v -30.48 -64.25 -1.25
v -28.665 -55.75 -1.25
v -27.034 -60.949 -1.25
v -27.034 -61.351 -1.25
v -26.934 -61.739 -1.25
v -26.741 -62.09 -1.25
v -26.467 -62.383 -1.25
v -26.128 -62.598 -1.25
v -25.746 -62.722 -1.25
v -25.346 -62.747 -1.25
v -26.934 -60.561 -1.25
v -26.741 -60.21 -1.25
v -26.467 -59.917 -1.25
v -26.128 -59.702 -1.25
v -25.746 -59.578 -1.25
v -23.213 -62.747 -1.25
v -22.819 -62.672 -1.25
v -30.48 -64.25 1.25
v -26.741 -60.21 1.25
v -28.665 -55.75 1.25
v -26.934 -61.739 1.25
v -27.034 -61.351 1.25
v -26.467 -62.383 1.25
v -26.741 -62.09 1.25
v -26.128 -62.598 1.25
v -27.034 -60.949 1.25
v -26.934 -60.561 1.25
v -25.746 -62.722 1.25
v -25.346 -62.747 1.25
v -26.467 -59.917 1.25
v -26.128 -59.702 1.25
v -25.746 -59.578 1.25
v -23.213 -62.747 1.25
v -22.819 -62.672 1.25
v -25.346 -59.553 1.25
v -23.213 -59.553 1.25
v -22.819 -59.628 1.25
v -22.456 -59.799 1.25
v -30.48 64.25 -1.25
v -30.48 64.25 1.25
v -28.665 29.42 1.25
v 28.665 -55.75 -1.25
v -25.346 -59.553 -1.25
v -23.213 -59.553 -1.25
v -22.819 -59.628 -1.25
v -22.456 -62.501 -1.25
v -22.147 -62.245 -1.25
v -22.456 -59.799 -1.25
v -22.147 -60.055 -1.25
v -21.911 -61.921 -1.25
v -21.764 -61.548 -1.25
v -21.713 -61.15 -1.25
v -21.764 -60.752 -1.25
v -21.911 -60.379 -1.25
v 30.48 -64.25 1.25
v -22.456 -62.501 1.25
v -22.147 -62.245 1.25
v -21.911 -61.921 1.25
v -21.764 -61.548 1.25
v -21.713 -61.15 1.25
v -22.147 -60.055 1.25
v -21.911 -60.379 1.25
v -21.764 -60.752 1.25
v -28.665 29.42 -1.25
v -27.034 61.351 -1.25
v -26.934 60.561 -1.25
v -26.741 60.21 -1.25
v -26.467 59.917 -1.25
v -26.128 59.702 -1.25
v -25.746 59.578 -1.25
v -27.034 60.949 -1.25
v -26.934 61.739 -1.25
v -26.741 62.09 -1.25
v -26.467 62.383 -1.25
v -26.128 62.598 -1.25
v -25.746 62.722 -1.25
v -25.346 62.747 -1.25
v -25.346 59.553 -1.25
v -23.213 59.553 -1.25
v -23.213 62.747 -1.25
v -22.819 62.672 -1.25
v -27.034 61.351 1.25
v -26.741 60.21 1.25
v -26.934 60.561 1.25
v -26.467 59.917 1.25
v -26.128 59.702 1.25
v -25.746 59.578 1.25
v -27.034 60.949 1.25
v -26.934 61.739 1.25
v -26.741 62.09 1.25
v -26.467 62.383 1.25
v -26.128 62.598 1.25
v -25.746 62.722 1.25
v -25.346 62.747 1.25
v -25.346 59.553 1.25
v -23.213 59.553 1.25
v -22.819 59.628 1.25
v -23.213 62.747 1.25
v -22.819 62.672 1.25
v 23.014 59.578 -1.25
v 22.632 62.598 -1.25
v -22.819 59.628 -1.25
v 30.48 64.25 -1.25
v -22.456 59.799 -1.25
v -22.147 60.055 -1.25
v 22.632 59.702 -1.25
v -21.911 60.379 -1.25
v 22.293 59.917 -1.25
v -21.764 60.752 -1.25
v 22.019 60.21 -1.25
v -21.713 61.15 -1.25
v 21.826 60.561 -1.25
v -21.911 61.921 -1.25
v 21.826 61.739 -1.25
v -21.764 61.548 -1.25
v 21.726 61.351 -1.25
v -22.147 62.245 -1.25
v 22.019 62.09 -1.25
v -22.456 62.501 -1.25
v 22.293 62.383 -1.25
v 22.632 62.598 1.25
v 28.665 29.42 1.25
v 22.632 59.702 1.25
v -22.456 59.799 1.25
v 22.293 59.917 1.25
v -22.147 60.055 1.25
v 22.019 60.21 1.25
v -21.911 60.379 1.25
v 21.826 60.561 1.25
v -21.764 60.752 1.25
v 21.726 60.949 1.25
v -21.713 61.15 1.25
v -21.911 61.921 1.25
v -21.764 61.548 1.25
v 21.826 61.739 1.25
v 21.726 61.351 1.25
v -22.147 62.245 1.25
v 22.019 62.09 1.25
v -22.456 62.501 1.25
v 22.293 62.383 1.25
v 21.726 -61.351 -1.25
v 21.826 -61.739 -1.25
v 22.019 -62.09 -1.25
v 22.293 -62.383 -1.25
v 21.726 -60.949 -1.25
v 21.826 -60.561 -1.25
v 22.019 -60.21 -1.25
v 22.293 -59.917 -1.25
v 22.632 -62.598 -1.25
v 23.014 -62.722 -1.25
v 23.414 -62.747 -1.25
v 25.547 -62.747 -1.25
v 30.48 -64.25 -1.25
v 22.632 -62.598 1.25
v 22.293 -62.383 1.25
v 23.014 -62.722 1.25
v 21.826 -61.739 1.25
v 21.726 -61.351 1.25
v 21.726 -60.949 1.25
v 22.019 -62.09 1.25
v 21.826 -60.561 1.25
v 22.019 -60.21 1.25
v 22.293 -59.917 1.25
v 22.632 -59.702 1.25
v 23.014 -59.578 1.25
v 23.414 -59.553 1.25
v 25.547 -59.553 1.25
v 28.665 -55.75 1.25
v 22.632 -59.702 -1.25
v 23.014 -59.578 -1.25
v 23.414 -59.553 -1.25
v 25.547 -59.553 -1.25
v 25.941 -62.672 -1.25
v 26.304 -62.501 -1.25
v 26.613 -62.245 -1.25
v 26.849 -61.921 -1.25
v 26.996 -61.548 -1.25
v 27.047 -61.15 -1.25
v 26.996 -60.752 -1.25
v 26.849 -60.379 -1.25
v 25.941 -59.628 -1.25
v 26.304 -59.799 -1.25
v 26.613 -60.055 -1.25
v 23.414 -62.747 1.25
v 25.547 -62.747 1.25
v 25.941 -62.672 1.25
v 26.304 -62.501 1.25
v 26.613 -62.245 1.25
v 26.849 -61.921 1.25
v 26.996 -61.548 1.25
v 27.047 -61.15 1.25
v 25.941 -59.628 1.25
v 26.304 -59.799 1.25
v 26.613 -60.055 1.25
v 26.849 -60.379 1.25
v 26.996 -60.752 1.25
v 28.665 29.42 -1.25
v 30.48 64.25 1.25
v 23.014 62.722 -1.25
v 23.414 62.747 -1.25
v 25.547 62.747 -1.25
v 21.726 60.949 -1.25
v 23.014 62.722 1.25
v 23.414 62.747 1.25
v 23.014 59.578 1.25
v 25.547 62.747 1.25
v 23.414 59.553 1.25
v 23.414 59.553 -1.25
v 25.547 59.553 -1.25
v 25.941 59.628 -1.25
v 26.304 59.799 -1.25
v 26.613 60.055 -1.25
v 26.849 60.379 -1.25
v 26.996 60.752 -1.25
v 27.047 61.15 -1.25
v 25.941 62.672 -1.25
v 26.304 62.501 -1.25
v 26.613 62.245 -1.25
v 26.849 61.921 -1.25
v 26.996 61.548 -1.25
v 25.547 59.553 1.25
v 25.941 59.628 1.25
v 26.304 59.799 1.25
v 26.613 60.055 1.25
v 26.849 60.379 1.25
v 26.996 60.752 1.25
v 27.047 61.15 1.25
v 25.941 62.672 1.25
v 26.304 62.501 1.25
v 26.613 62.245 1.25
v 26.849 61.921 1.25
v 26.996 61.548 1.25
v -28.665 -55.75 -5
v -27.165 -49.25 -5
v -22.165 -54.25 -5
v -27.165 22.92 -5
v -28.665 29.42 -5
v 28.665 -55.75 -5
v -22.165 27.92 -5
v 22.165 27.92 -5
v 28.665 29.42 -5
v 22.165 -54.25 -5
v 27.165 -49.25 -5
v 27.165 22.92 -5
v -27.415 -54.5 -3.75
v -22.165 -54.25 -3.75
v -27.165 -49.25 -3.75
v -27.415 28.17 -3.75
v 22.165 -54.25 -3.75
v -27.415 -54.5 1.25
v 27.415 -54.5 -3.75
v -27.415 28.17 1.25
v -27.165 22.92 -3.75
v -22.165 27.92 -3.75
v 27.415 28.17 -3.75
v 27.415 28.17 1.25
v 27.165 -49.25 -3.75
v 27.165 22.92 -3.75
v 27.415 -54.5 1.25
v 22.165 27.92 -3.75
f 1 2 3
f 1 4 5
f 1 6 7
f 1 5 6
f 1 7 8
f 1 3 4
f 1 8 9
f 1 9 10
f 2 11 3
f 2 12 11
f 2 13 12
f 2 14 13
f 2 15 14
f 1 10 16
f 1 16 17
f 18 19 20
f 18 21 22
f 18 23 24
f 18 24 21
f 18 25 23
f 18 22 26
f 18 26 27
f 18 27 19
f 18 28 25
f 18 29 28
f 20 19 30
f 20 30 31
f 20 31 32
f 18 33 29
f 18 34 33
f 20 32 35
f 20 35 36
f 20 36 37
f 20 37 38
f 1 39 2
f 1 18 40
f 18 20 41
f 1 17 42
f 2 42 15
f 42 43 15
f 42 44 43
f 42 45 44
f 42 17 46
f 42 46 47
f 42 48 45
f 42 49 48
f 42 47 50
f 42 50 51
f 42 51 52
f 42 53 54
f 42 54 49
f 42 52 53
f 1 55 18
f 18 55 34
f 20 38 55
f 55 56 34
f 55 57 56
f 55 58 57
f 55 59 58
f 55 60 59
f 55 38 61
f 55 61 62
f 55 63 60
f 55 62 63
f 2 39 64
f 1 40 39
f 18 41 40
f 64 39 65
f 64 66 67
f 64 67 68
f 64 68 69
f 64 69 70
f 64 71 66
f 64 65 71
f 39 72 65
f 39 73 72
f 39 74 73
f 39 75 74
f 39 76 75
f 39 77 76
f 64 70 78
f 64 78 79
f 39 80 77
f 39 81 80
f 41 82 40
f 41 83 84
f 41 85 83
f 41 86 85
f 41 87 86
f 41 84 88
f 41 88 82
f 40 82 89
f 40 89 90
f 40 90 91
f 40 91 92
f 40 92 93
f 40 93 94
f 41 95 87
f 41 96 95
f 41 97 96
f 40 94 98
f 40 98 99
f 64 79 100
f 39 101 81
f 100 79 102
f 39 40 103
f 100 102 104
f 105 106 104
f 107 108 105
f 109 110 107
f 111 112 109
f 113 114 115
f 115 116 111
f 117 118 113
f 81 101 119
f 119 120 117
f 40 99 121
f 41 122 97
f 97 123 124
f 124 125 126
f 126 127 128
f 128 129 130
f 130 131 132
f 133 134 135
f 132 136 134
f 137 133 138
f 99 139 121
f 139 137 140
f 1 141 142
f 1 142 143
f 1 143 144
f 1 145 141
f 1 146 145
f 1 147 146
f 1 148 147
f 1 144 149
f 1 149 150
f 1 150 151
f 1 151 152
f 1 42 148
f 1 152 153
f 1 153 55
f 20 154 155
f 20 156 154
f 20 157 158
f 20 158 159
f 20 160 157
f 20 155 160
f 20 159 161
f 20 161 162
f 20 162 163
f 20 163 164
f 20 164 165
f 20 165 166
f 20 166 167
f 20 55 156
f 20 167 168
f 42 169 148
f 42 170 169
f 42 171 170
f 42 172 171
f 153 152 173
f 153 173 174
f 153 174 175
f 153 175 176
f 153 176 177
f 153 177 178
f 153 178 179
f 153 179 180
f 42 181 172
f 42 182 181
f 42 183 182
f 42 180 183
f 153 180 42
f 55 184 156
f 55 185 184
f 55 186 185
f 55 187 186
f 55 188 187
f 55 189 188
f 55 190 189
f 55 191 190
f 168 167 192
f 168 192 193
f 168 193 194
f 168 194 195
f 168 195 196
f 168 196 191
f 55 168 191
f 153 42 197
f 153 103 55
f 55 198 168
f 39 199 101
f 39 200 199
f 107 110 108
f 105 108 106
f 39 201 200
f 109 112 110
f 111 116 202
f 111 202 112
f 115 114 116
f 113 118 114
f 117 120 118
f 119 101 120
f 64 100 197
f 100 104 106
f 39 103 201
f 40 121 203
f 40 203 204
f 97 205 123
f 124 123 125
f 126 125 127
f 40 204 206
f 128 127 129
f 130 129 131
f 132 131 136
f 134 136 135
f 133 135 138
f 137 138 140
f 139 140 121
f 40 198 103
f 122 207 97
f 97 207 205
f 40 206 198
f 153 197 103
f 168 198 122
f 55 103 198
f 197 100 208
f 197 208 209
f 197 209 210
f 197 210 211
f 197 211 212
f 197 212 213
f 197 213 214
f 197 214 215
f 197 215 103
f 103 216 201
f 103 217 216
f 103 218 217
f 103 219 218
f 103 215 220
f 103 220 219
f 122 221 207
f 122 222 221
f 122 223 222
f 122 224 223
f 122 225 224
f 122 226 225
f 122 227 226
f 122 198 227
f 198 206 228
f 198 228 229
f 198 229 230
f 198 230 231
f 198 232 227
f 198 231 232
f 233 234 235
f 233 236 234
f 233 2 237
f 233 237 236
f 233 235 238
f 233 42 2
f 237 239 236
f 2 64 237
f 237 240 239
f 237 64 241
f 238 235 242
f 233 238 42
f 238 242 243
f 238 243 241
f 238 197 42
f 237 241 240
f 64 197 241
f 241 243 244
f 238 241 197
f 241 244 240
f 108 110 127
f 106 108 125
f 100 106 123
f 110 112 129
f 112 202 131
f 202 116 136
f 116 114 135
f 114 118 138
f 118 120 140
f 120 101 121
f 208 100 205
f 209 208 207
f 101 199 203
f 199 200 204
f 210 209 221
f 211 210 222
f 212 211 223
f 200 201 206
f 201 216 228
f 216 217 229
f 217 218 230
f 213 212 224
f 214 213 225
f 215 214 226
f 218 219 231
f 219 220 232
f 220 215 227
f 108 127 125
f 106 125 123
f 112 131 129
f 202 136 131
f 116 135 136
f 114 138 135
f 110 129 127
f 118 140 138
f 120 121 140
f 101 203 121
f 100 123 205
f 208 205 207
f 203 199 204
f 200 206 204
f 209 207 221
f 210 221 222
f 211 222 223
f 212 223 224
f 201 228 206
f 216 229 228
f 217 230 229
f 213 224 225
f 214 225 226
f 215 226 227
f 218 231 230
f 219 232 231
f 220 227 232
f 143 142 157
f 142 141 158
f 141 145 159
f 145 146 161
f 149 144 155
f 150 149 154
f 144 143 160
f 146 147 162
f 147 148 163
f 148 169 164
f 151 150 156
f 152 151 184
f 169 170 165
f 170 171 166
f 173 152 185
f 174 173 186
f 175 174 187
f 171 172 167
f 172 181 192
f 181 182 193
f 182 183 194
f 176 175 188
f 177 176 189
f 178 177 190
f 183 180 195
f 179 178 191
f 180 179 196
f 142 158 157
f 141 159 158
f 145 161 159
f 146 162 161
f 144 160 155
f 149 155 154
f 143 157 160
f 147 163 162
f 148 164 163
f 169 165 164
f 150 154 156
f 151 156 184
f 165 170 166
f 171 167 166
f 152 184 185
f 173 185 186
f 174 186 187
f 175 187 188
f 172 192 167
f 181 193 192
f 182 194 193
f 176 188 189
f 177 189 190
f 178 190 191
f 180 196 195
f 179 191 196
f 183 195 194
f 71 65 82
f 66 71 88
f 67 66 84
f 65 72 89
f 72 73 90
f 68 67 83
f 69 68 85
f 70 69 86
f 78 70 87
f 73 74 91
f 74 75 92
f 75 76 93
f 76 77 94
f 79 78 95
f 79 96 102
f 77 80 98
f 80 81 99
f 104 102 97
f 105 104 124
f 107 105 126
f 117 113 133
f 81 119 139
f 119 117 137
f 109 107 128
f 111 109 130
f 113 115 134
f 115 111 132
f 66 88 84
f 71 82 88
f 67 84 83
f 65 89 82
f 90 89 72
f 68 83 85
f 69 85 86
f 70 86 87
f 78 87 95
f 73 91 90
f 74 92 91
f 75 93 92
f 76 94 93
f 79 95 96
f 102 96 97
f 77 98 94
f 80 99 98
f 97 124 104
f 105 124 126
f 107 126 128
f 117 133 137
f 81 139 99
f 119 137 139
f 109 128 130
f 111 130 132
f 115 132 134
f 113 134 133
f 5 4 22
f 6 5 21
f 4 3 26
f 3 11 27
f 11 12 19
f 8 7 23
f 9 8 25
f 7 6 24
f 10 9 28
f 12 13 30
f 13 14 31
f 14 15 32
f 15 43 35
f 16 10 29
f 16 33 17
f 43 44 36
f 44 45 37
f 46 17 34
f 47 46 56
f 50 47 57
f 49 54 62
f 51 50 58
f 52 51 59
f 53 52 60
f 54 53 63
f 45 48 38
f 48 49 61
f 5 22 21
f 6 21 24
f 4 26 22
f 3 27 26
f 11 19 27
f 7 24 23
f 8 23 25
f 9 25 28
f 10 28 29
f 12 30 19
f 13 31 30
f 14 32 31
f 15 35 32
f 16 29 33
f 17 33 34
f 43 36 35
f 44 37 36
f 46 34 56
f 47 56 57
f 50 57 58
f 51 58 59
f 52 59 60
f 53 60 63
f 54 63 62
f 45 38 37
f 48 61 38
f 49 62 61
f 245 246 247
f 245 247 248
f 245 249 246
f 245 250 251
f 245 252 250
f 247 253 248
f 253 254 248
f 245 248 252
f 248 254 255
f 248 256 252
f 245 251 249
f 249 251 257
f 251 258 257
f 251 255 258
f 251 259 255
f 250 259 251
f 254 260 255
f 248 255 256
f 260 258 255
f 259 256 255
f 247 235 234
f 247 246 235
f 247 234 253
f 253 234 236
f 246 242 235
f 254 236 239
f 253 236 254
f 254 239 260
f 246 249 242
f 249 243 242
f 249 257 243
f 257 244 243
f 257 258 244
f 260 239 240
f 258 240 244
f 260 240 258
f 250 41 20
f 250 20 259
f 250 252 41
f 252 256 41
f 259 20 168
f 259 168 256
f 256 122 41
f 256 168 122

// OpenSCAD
$fn = 25;

breadboard_width = 54.33;
breadboard_height = 82.17;

hp = 5.08;
panel_height = 128.5;
thickness = 2.5;
cutout_depth = 7;
distance_from_bottom = 10;

screw_hole_diameter = 3.2;
screw_hole_distance = 1.5 + screw_hole_diameter/2;
screw_distance_from_side = 4.5;

module breadboard_pos() {
    translate([0, -panel_height/2 + breadboard_height/2 + distance_from_bottom, 0])
        children();
}

module breadboard(expansion) {
    breadboard_pos()
    cube([breadboard_width+expansion, breadboard_height+expansion, cutout_depth+expansion], center=true);
}

module breadboard_panel(
    wall_thickness=3,
) {
    panel_width = ceil((breadboard_width + 2*wall_thickness)/hp)*hp;

    c = 5; // bridging for corners

    difference() {
        union() {
            cube([panel_width, panel_height, thickness], center=true);
            breadboard(expansion=wall_thickness);
        }

        breadboard(expansion=0.5);

        // bottom cutout to make it printable on the face
        breadboard_pos()
        translate([0,0,-12.5])
        linear_extrude(25)
        polygon(points=[
            [ -breadboard_width/2  , +breadboard_height/2-c ],
            [ -breadboard_width/2+c, +breadboard_height/2   ],
            [ +breadboard_width/2-c, +breadboard_height/2   ],
            [ +breadboard_width/2  , +breadboard_height/2-c ],
            [ +breadboard_width/2  , -breadboard_height/2+c ],
            [ +breadboard_width/2-c, -breadboard_height/2   ],
            [ -breadboard_width/2+c, -breadboard_height/2   ],
            [ -breadboard_width/2  , -breadboard_height/2+c ],
        ]);

        translate([0, 0, 5.0 + thickness/2])
        cube([panel_width + 1.0, panel_height + 1.0, 10.0], center=true);

        // Screw slots
        for (x = [
            panel_width/2  - screw_distance_from_side - screw_hole_diameter/2,
            -panel_width/2 + screw_distance_from_side + screw_hole_diameter/2,
        ])
        for (y = [
            panel_height/2 - screw_hole_distance,
            -panel_height/2 + screw_hole_distance,
        ])
        hull()
        for (xx = [
            -screw_hole_diameter/3,
            +screw_hole_diameter/3
        ])
        translate([x+xx, y, 0])
        cylinder(d=screw_hole_diameter, h=10, center=true);
    }
}

breadboard_panel();
